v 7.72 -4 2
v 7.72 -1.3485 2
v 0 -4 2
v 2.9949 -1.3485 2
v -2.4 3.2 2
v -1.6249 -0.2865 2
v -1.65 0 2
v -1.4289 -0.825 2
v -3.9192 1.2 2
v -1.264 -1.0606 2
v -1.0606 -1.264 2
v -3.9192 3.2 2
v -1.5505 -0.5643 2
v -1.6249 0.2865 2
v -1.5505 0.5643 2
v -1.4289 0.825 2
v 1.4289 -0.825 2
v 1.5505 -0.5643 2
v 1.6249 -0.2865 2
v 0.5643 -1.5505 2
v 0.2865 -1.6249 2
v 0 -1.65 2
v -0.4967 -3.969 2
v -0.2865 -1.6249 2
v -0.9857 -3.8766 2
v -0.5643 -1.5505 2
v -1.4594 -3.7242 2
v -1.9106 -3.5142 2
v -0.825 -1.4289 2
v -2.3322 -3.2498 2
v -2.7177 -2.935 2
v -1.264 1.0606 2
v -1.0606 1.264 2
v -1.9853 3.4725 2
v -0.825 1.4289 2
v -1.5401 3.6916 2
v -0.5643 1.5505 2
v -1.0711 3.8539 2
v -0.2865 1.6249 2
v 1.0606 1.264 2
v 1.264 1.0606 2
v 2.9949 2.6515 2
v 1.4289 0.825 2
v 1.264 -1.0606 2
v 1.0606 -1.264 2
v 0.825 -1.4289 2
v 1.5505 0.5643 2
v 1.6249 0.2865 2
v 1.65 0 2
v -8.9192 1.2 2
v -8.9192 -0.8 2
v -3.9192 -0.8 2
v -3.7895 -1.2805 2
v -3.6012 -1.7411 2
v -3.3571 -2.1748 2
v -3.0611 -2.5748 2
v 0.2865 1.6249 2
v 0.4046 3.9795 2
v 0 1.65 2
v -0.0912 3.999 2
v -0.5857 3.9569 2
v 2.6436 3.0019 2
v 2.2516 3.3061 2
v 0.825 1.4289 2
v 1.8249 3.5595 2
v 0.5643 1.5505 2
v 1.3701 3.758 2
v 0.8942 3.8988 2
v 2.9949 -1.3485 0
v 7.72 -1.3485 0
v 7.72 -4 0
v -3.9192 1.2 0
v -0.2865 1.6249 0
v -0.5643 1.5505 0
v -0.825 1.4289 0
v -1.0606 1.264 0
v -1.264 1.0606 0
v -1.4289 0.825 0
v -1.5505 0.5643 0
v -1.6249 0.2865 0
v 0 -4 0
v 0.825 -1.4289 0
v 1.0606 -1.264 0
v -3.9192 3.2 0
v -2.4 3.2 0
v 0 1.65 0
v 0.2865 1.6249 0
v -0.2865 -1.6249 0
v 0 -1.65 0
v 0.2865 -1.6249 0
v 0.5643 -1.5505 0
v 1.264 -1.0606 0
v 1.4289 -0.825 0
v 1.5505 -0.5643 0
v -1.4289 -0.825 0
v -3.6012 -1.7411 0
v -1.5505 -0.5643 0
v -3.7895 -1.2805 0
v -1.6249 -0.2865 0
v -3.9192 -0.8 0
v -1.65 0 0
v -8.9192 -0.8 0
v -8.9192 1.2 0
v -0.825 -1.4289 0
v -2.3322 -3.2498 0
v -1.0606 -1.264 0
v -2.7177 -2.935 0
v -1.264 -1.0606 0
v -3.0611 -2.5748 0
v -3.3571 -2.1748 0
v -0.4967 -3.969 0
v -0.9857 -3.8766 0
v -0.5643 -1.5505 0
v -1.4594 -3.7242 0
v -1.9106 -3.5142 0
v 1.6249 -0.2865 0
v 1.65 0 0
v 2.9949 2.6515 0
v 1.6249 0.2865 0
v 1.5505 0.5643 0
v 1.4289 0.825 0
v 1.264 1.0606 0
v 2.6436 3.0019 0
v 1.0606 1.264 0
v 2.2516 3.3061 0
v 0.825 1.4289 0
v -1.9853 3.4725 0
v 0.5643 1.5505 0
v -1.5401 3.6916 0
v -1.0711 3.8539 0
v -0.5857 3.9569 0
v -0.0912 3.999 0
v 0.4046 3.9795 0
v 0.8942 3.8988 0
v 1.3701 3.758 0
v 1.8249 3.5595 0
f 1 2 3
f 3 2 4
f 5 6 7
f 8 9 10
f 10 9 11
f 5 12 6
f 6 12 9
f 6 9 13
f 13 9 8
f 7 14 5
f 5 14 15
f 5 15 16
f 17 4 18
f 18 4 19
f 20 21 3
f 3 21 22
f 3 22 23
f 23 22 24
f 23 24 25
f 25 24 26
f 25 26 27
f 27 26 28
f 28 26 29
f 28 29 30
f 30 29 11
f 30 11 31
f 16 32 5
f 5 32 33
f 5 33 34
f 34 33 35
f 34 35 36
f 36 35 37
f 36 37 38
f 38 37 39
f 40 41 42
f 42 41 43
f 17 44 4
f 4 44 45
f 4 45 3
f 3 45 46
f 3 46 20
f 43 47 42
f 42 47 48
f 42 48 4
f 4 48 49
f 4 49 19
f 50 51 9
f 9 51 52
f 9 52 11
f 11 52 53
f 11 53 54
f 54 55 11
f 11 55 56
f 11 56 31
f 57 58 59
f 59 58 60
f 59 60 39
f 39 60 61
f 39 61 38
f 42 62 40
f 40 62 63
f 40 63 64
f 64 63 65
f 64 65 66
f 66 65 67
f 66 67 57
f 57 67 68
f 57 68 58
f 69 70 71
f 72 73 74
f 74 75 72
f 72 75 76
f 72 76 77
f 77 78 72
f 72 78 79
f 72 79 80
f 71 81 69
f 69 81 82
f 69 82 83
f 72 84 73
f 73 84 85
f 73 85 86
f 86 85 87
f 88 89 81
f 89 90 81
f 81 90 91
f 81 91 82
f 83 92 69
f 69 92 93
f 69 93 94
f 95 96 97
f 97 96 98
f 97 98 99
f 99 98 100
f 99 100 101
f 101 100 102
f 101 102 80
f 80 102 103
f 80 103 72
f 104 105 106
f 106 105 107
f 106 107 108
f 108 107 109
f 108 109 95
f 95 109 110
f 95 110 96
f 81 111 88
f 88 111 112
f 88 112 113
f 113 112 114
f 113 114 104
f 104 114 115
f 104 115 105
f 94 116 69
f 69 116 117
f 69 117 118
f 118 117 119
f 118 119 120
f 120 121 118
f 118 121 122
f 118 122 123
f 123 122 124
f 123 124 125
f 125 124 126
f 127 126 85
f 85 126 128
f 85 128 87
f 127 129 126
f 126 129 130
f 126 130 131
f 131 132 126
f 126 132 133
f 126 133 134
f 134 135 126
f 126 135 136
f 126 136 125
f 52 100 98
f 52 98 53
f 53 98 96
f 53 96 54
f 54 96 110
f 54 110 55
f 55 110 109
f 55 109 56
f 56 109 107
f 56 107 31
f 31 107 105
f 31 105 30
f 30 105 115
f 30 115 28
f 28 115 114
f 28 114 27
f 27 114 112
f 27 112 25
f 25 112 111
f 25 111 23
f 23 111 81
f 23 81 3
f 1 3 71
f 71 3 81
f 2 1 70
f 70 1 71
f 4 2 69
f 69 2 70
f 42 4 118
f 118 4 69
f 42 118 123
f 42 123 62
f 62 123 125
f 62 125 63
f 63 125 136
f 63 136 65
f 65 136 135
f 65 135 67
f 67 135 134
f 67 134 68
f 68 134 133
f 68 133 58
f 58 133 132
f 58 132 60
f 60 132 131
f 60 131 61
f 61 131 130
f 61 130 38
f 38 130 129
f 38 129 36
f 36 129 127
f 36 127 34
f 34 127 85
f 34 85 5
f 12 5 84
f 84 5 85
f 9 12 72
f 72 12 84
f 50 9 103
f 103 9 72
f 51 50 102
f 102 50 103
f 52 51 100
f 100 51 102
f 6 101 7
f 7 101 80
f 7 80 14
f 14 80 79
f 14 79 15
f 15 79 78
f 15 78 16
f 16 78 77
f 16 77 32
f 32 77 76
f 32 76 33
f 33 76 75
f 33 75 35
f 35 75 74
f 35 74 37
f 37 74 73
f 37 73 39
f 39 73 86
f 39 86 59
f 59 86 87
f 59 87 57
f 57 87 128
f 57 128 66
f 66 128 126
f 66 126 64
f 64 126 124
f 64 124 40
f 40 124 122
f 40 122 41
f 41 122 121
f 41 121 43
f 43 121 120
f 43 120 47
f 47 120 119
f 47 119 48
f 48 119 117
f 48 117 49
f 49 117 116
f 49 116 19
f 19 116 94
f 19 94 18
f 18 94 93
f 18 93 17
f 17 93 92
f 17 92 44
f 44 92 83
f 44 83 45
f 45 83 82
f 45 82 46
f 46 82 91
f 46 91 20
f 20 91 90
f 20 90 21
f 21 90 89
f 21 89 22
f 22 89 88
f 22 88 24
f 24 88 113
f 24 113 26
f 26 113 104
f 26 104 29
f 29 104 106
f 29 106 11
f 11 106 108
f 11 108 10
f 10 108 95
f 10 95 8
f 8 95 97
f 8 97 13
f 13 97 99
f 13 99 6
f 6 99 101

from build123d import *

# Parameters (mm, degrees)
SKETCH1_R           = 1.65
BOSS_EXTRUDE1_DEPTH = 2


with BuildPart() as part:
    # Sketch1 → Boss-Extrude1 (new body)
    with BuildSketch(Plane.XY):
        with BuildLine():
            Line((7.72, -4), (0, -4))
            ThreePointArc((0, -4), (-2.529822128, -3.098386677), (-3.919183588, -0.8))
            Line((-3.919183588, -0.8), (-8.919183588, -0.8))
            Line((-8.919183588, -0.8), (-8.919183588, 1.2))
            Line((-8.919183588, 1.2), (-3.919183588, 1.2))
            Line((-3.919183588, 1.2), (-3.919183588, 3.2))
            Line((-3.919183588, 3.2), (-2.4, 3.2))
            ThreePointArc((-2.4, 3.2), (0.404610957, 3.979483631), (2.994944065, 2.651473185))
            Line((2.994944065, 2.651473185), (2.994944065, -1.348526815))
            Line((2.994944065, -1.348526815), (7.72, -1.348526815))
            Line((7.72, -1.348526815), (7.72, -4))
        make_face()
        Circle(SKETCH1_R, mode=Mode.SUBTRACT)
    extrude(amount=BOSS_EXTRUDE1_DEPTH)


solid = part.part
